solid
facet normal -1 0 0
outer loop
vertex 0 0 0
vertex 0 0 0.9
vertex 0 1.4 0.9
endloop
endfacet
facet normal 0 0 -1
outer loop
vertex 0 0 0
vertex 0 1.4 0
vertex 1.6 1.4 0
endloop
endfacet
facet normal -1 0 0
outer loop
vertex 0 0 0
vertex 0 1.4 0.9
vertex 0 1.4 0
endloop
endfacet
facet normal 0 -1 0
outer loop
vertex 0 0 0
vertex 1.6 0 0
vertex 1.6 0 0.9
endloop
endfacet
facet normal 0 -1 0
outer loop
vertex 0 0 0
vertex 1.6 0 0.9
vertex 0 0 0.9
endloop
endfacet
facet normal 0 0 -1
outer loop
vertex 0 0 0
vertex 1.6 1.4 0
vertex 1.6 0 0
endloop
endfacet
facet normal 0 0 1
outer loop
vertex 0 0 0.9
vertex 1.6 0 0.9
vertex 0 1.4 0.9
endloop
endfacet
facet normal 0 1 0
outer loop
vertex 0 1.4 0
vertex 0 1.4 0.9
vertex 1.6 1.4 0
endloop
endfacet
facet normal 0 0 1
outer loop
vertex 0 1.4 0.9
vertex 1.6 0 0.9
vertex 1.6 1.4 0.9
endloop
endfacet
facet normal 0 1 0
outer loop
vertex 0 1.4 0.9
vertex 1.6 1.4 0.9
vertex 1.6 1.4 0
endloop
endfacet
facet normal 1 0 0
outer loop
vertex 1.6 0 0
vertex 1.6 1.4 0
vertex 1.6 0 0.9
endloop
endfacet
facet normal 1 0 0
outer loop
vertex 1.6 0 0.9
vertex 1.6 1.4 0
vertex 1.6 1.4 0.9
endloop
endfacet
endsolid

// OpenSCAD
/* Warning, this is a very basic generator with a lot of approximation 
input data : [VDFN, NNC, 1.6x1.4x0.9mm, 8, , A, C04-25509A]
generated by com.zoubworld.electronics.cad.model3d.Basic
Date : Sun Feb 15 10:50:49 CET 2026
*/

//body
color("black")
translate([0,0,0])
cube([1.6,1.4,0.9], center=false);
